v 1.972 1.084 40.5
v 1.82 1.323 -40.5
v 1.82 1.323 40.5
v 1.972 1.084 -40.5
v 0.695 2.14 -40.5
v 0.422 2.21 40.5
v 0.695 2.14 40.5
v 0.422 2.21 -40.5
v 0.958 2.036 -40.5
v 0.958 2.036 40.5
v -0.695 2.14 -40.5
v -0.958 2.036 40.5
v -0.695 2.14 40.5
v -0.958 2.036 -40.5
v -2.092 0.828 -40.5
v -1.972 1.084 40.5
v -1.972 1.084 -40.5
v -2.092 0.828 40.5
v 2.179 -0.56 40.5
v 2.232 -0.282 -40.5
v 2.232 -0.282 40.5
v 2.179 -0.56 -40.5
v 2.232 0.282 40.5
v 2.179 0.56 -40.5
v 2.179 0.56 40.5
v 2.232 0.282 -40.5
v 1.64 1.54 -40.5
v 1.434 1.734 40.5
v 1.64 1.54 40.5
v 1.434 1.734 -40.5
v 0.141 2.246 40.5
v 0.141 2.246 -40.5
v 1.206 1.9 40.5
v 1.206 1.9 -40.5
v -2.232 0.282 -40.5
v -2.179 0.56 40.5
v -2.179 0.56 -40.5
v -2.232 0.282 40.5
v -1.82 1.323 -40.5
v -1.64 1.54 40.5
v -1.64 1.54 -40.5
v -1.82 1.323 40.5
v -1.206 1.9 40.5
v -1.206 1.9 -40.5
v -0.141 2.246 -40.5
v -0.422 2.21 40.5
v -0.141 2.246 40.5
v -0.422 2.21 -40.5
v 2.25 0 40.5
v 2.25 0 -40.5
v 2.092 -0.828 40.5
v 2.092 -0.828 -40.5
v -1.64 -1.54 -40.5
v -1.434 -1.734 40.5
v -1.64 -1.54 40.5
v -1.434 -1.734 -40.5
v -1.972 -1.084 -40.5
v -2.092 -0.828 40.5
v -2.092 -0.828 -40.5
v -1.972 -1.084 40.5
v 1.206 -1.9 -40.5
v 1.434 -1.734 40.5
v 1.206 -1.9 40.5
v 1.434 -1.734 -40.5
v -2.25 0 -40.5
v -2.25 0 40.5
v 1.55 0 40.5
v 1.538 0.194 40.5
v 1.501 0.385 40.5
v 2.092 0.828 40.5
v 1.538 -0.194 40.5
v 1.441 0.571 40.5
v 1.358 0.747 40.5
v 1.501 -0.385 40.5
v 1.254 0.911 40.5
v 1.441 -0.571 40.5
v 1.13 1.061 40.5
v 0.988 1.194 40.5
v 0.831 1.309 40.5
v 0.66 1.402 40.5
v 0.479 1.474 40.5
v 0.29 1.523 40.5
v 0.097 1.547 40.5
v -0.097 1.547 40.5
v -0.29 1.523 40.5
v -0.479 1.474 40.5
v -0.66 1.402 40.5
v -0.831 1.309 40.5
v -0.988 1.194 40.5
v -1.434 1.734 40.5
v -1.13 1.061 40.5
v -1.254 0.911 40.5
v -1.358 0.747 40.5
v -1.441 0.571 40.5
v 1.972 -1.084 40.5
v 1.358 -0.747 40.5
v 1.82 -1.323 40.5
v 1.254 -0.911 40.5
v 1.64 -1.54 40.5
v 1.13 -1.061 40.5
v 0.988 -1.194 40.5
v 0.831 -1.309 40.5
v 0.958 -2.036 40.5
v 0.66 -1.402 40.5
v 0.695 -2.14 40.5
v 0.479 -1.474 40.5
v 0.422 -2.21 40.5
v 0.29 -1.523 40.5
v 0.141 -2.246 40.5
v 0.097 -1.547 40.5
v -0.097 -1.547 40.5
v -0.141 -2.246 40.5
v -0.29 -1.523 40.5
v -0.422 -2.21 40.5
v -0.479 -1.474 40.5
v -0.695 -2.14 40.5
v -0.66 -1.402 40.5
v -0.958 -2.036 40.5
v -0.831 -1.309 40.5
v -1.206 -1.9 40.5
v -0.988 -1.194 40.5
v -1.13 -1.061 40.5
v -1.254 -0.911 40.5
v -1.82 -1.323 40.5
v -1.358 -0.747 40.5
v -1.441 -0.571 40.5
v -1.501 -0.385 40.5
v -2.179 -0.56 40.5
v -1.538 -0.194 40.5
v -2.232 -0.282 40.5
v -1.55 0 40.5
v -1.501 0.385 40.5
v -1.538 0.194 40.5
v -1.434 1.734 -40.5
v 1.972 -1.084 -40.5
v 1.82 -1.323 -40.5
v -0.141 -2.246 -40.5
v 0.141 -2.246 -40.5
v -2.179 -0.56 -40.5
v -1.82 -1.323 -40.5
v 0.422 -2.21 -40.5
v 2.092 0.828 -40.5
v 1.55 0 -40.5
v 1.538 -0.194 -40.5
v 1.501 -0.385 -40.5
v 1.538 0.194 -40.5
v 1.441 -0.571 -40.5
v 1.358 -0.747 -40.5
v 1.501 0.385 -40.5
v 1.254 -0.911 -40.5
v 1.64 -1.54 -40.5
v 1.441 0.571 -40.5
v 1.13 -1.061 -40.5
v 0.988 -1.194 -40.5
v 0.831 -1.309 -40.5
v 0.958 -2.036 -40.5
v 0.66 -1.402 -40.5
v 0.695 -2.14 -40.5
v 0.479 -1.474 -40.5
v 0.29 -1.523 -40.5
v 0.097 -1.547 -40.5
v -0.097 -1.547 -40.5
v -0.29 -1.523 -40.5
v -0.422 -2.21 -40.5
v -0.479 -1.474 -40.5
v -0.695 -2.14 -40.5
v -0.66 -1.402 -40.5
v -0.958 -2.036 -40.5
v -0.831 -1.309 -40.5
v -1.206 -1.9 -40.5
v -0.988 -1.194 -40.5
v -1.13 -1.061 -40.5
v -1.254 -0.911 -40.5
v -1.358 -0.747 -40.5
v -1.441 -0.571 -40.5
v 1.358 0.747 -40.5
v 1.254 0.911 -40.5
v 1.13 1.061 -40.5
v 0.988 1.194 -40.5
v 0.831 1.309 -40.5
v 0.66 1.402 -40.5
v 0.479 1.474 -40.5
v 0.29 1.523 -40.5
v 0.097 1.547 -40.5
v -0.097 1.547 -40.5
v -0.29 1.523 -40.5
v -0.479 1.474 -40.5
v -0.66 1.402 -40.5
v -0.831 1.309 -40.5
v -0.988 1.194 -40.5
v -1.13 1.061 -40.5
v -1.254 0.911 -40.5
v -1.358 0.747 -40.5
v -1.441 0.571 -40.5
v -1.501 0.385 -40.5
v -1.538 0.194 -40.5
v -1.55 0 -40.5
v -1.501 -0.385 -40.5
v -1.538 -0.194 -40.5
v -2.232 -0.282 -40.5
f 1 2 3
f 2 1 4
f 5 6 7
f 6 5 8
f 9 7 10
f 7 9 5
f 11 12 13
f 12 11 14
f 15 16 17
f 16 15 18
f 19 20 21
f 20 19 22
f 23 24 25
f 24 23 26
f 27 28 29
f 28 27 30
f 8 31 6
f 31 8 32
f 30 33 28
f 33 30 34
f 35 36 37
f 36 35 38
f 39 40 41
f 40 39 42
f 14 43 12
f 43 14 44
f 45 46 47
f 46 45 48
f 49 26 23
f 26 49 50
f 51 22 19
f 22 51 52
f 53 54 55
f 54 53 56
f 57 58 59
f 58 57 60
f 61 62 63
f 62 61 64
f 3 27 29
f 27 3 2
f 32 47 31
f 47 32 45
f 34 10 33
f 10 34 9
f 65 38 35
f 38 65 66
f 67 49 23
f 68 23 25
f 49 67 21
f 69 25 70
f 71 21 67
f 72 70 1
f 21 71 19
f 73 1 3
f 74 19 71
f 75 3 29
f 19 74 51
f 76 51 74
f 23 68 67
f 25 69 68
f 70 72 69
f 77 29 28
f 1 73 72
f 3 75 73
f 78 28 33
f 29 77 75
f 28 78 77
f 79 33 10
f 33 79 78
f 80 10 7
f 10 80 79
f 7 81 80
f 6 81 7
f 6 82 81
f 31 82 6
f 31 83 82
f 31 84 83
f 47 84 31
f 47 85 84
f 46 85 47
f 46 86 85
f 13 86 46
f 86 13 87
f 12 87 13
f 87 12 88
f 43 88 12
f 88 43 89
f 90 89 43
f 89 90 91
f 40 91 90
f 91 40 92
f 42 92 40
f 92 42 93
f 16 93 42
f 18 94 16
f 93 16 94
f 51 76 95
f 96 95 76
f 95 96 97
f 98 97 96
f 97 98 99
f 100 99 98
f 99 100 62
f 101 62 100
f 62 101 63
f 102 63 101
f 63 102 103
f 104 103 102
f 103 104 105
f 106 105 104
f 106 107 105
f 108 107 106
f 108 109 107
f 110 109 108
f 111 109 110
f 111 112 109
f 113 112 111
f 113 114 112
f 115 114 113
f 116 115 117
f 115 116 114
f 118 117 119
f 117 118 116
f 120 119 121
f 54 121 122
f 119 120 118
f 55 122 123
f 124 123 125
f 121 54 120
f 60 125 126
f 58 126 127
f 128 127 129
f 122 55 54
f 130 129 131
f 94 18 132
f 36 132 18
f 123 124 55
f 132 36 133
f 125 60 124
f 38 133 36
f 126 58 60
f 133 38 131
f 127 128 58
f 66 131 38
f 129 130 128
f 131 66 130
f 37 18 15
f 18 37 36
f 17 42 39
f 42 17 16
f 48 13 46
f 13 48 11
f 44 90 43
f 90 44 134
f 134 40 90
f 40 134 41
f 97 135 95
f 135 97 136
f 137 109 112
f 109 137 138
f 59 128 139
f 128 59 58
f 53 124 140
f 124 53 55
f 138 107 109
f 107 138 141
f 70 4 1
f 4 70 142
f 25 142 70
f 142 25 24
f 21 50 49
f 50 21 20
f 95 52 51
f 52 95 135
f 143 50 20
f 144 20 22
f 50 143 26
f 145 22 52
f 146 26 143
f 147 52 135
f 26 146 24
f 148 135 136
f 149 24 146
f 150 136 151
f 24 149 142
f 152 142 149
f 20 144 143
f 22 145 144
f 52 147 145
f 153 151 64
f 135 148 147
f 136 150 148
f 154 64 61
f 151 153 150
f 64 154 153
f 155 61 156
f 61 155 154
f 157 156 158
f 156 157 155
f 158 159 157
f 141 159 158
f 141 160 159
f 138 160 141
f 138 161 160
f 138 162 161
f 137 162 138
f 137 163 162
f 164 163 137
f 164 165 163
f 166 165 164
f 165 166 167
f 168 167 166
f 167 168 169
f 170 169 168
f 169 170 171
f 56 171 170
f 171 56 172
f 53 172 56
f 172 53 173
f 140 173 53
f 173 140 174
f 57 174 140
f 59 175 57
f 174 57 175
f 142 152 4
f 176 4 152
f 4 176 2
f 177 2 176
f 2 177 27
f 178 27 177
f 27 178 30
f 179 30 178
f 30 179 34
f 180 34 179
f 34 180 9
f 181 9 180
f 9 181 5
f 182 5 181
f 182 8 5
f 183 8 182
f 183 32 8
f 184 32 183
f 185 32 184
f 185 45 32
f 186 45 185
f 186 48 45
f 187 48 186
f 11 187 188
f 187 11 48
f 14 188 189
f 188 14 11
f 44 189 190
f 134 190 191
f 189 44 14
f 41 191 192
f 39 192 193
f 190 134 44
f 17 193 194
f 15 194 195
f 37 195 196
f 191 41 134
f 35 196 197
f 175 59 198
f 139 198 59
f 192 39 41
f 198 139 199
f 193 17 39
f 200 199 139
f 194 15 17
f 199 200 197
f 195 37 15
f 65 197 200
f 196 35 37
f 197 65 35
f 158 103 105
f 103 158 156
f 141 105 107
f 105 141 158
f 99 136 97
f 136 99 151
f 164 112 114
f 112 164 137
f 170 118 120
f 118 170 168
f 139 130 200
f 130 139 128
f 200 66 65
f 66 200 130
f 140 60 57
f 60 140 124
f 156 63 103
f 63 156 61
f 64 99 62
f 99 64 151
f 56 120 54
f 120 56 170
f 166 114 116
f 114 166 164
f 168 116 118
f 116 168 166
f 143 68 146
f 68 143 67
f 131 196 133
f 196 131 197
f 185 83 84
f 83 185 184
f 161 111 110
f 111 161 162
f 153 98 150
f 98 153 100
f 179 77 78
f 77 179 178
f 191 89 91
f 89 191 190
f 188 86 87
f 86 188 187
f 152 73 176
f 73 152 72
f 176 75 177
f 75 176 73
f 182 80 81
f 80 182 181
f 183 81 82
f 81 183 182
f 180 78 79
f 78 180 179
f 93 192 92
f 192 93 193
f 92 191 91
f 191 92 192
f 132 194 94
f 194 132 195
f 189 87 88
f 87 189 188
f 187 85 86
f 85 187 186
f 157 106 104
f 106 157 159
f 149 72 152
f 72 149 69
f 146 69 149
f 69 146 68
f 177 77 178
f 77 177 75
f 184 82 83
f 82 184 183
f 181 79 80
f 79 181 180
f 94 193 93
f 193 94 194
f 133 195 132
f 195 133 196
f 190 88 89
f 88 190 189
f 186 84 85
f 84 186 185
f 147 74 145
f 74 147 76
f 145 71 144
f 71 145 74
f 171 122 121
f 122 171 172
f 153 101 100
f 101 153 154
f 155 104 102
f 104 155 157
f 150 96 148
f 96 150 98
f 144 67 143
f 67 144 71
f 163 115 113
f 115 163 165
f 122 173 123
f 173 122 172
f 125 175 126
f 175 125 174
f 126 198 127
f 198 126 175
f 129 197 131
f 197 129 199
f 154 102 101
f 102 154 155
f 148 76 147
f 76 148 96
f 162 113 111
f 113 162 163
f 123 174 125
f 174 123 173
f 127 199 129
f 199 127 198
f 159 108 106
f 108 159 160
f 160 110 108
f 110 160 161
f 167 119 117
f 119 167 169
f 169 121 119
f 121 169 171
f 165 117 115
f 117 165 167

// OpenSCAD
$fn = 50;


difference() {
	union() {
		translate(v = [0, 0, -40.5000000000]) {
			cylinder(h = 81, r = 2.2500000000);
		}
	}
	union() {
		translate(v = [0, 0, -100.0000000000]) {
			cylinder(h = 200, r = 1.5500000000);
		}
	}
}
